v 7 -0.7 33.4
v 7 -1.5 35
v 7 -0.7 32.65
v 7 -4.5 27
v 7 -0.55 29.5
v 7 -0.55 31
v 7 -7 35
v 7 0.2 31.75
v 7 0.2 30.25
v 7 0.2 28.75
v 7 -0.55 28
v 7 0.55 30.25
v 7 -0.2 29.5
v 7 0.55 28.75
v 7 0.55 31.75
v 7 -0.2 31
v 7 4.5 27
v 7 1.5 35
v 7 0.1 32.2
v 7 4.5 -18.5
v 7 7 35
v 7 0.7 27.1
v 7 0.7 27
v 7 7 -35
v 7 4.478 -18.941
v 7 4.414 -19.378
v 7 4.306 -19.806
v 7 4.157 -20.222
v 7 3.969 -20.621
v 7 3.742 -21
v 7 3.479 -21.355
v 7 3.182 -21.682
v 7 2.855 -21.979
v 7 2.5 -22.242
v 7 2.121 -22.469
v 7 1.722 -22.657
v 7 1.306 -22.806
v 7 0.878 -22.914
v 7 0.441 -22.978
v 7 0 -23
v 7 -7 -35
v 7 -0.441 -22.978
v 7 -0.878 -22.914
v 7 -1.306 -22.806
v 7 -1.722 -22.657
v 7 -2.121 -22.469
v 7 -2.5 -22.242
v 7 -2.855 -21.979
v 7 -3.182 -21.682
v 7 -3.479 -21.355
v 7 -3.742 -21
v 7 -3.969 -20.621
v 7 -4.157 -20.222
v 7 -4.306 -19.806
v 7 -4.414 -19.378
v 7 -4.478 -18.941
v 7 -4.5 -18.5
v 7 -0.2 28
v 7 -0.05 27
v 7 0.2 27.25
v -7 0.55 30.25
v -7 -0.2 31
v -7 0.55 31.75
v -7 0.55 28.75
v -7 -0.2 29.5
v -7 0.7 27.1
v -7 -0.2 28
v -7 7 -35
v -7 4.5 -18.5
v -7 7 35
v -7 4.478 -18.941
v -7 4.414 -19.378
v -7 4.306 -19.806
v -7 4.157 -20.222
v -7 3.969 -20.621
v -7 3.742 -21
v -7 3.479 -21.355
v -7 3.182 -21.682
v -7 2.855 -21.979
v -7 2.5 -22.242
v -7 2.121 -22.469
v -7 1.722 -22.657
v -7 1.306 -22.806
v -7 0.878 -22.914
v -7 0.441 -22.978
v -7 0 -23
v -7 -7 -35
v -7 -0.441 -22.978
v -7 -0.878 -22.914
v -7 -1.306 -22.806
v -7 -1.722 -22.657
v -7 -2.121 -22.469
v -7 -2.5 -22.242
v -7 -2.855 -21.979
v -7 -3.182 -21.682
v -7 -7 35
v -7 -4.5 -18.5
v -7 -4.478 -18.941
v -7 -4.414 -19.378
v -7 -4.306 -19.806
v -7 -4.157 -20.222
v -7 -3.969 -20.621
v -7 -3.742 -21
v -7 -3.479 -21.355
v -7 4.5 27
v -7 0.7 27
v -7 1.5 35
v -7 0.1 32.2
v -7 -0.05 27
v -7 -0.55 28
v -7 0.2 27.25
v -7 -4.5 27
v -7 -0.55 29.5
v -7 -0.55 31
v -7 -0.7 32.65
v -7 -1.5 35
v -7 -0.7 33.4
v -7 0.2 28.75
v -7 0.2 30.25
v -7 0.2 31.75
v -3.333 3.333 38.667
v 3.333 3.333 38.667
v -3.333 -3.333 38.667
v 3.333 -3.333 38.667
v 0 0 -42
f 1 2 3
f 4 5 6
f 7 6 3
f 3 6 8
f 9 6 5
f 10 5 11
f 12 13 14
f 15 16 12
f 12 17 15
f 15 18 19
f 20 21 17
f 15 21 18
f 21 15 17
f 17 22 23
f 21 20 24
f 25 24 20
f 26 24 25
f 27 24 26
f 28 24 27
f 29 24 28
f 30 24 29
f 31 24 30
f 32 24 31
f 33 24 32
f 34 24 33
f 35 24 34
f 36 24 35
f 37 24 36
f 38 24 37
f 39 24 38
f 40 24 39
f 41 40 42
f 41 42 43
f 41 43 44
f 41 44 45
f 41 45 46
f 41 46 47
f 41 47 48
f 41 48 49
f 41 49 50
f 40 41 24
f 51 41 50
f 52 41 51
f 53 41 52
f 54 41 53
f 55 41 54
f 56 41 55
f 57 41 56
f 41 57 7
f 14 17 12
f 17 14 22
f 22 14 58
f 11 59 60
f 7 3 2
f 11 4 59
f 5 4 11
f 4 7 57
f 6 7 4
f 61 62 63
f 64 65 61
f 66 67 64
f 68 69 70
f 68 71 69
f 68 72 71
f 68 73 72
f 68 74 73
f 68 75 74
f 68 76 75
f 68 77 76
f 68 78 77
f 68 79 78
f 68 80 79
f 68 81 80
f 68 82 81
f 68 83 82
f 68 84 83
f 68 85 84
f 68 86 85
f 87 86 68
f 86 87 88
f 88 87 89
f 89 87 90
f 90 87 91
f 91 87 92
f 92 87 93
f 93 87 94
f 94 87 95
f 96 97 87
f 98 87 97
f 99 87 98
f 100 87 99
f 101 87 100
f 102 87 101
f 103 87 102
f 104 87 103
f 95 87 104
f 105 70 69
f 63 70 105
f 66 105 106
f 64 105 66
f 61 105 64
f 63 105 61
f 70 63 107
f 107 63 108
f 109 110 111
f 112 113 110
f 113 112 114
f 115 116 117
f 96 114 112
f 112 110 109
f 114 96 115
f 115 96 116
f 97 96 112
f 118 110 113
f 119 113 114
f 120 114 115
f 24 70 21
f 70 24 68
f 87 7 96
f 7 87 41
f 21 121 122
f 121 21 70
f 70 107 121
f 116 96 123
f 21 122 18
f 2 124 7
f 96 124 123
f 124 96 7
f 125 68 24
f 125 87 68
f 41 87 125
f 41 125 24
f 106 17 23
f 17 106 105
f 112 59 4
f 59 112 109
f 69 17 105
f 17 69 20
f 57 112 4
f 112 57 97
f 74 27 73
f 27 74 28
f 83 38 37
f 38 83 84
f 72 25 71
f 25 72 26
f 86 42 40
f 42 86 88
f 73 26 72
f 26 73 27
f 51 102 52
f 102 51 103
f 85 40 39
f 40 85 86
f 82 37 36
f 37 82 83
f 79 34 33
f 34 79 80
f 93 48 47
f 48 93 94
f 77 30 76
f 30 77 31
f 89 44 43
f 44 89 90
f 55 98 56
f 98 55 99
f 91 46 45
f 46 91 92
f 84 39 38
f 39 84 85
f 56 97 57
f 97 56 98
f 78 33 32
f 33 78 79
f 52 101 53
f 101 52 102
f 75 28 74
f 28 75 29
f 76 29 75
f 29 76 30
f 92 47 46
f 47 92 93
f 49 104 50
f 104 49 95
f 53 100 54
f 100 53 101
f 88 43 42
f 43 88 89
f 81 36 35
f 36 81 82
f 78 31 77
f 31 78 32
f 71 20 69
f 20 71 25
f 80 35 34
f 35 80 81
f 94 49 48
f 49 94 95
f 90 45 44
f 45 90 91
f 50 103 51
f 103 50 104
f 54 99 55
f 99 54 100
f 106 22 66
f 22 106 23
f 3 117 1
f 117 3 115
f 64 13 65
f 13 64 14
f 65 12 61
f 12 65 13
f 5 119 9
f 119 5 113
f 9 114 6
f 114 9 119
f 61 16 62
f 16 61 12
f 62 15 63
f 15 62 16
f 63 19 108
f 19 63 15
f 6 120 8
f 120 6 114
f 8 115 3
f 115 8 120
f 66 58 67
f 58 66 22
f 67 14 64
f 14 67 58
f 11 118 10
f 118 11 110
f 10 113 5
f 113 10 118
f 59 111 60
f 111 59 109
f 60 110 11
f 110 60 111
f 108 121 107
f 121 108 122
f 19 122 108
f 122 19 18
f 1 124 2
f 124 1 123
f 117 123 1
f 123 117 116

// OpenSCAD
$fn = 64;
mm = 1;
cm = 10*mm;

SHAFT_RADIUS = 7*mm;
SHAFT_DIAMETER = 2*SHAFT_RADIUS;
SHAFT_LENGTH = 7*cm;
SHAFT_POINT_LENGTH = SHAFT_RADIUS;
SHAFT_POINT_LAYERS = 1;
RAPIER_LENGTH = SHAFT_LENGTH + 2*SHAFT_POINT_LENGTH;
GRIPPER_FLEXURE_STIFFNESS = 2.5*mm;
GRIPPER_FLEXURE_LENGTH = 5*cm;
GRIPPER_CLOSURE_INSET = 15*mm;
GRIPPER_CLOSURE_LENGTH = 5*mm;

module rapier_body() {
  // cylindrical shaft
  cube
    ( [ SHAFT_DIAMETER
      , SHAFT_DIAMETER
      , SHAFT_LENGTH
      ]
    , center = true
    );
  
  // top point
  translate([0,0,0.5*SHAFT_LENGTH])
  cap_body();

  // bottom point
  translate([0,0,-0.5*SHAFT_LENGTH])
  mirror([0,0,1])
  cap_body();
}

module cap_body() {
  translate([0,0,0.5*SHAFT_POINT_LENGTH])
  rotate([0,0,45])
  cylinder
    ( r1 = SHAFT_RADIUS*sqrt(2)
    , r2 = 0
    , h = SHAFT_POINT_LENGTH
    , center = true
    , $fn = 4
    );
}

module tape_measure_slot() {
    head_vertical = 1.5;
    head_horizontal = 1.5;
    head_height = 5.8;
    tape_width = 5.8;
    
    translate([SHAFT_RADIUS-tape_width/2,0,-SHAFT_LENGTH/2-5-SHAFT_LENGTH/2])
    difference() {
        cube([2*SHAFT_RADIUS,head_height,SHAFT_LENGTH+10], center = true);
        
        translate([0,-head_vertical, -head_horizontal])
        cube([4*SHAFT_RADIUS,head_height,SHAFT_LENGTH+10], center = true);
    }
}

module gripper_flexure_profile() {
  r = SHAFT_RADIUS - GRIPPER_FLEXURE_STIFFNESS;
  d = 2*r;

  translate([0,0,-0.5*GRIPPER_FLEXURE_LENGTH+0.5*RAPIER_LENGTH-GRIPPER_CLOSURE_INSET])
  union() {
    translate([0,0,0.5*r])
    cube
      ( [ 10*cm
        , d
        , GRIPPER_FLEXURE_LENGTH - r
        ]
      , center = true
      );
    
    // translate([0,0,0.5*GRIPPER_FLEXURE_LENGTH - r])
    // rotate([0,90,0])
    // cylinder
    //   ( r = r
    //   , h = 10*cm
    //   , center = true
    //   );
    
    translate([0,0,-0.5*GRIPPER_FLEXURE_LENGTH + r])
    rotate([0,90,0])
    cylinder
      ( r = r
      , h = 10*cm
      , center = true
      );
  }

  s = 2;
  translate([0,0,0.5*RAPIER_LENGTH-GRIPPER_CLOSURE_INSET+s*SHAFT_RADIUS+GRIPPER_CLOSURE_LENGTH])
  scale([1,1,s])
  rotate([45,0,0])
  cube
    ( [ 10*cm
      , sqrt(2)*SHAFT_RADIUS
      , sqrt(2)*SHAFT_RADIUS
      ]
    , center = true
    );
  
  // TODO
  translate([0,0,0.5*RAPIER_LENGTH-GRIPPER_CLOSURE_INSET+0.5*GRIPPER_CLOSURE_LENGTH])
  difference() {
    cube([5*cm,1.4*mm,GRIPPER_CLOSURE_LENGTH+2*cm], center = true);

    r = 3*mm;
    delta_x = 0.2*mm;
    delta_y = 0.75*mm;

    translate([0,r-delta_x,0])
    rotate([0,90,0])
    cylinder(r = r, h = 10*cm, center = true, $fn = 4);

    translate([0,-r+delta_x,delta_y])
    rotate([0,90,0])
    cylinder(r = r, h = 10*cm, center = true, $fn = 4);

    translate([0,r-delta_x,2*delta_y])
    rotate([0,90,0])
    cylinder(r = r, h = 10*cm, center = true, $fn = 4);

    translate([0,r-delta_x,4*delta_y])
    rotate([0,90,0])
    cylinder(r = r, h = 10*cm, center = true, $fn = 4);

    translate([0,-r+delta_x,3*delta_y])
    rotate([0,90,0])
    cylinder(r = r, h = 10*cm, center = true, $fn = 4);

    translate([0,r-delta_x,-2*delta_y])
    rotate([0,90,0])
    cylinder(r = r, h = 10*cm, center = true, $fn = 4);

    translate([0,-r+delta_x,-delta_y])
    rotate([0,90,0])
    cylinder(r = r, h = 10*cm, center = true, $fn = 4);

    translate([0,-r+delta_x,-3*delta_y])
    rotate([0,90,0])
    cylinder(r = r, h = 10*cm, center = true, $fn = 4);
  }
}

difference() {
rapier_body();

gripper_flexure_profile();
}

// tape_measure_slot();
